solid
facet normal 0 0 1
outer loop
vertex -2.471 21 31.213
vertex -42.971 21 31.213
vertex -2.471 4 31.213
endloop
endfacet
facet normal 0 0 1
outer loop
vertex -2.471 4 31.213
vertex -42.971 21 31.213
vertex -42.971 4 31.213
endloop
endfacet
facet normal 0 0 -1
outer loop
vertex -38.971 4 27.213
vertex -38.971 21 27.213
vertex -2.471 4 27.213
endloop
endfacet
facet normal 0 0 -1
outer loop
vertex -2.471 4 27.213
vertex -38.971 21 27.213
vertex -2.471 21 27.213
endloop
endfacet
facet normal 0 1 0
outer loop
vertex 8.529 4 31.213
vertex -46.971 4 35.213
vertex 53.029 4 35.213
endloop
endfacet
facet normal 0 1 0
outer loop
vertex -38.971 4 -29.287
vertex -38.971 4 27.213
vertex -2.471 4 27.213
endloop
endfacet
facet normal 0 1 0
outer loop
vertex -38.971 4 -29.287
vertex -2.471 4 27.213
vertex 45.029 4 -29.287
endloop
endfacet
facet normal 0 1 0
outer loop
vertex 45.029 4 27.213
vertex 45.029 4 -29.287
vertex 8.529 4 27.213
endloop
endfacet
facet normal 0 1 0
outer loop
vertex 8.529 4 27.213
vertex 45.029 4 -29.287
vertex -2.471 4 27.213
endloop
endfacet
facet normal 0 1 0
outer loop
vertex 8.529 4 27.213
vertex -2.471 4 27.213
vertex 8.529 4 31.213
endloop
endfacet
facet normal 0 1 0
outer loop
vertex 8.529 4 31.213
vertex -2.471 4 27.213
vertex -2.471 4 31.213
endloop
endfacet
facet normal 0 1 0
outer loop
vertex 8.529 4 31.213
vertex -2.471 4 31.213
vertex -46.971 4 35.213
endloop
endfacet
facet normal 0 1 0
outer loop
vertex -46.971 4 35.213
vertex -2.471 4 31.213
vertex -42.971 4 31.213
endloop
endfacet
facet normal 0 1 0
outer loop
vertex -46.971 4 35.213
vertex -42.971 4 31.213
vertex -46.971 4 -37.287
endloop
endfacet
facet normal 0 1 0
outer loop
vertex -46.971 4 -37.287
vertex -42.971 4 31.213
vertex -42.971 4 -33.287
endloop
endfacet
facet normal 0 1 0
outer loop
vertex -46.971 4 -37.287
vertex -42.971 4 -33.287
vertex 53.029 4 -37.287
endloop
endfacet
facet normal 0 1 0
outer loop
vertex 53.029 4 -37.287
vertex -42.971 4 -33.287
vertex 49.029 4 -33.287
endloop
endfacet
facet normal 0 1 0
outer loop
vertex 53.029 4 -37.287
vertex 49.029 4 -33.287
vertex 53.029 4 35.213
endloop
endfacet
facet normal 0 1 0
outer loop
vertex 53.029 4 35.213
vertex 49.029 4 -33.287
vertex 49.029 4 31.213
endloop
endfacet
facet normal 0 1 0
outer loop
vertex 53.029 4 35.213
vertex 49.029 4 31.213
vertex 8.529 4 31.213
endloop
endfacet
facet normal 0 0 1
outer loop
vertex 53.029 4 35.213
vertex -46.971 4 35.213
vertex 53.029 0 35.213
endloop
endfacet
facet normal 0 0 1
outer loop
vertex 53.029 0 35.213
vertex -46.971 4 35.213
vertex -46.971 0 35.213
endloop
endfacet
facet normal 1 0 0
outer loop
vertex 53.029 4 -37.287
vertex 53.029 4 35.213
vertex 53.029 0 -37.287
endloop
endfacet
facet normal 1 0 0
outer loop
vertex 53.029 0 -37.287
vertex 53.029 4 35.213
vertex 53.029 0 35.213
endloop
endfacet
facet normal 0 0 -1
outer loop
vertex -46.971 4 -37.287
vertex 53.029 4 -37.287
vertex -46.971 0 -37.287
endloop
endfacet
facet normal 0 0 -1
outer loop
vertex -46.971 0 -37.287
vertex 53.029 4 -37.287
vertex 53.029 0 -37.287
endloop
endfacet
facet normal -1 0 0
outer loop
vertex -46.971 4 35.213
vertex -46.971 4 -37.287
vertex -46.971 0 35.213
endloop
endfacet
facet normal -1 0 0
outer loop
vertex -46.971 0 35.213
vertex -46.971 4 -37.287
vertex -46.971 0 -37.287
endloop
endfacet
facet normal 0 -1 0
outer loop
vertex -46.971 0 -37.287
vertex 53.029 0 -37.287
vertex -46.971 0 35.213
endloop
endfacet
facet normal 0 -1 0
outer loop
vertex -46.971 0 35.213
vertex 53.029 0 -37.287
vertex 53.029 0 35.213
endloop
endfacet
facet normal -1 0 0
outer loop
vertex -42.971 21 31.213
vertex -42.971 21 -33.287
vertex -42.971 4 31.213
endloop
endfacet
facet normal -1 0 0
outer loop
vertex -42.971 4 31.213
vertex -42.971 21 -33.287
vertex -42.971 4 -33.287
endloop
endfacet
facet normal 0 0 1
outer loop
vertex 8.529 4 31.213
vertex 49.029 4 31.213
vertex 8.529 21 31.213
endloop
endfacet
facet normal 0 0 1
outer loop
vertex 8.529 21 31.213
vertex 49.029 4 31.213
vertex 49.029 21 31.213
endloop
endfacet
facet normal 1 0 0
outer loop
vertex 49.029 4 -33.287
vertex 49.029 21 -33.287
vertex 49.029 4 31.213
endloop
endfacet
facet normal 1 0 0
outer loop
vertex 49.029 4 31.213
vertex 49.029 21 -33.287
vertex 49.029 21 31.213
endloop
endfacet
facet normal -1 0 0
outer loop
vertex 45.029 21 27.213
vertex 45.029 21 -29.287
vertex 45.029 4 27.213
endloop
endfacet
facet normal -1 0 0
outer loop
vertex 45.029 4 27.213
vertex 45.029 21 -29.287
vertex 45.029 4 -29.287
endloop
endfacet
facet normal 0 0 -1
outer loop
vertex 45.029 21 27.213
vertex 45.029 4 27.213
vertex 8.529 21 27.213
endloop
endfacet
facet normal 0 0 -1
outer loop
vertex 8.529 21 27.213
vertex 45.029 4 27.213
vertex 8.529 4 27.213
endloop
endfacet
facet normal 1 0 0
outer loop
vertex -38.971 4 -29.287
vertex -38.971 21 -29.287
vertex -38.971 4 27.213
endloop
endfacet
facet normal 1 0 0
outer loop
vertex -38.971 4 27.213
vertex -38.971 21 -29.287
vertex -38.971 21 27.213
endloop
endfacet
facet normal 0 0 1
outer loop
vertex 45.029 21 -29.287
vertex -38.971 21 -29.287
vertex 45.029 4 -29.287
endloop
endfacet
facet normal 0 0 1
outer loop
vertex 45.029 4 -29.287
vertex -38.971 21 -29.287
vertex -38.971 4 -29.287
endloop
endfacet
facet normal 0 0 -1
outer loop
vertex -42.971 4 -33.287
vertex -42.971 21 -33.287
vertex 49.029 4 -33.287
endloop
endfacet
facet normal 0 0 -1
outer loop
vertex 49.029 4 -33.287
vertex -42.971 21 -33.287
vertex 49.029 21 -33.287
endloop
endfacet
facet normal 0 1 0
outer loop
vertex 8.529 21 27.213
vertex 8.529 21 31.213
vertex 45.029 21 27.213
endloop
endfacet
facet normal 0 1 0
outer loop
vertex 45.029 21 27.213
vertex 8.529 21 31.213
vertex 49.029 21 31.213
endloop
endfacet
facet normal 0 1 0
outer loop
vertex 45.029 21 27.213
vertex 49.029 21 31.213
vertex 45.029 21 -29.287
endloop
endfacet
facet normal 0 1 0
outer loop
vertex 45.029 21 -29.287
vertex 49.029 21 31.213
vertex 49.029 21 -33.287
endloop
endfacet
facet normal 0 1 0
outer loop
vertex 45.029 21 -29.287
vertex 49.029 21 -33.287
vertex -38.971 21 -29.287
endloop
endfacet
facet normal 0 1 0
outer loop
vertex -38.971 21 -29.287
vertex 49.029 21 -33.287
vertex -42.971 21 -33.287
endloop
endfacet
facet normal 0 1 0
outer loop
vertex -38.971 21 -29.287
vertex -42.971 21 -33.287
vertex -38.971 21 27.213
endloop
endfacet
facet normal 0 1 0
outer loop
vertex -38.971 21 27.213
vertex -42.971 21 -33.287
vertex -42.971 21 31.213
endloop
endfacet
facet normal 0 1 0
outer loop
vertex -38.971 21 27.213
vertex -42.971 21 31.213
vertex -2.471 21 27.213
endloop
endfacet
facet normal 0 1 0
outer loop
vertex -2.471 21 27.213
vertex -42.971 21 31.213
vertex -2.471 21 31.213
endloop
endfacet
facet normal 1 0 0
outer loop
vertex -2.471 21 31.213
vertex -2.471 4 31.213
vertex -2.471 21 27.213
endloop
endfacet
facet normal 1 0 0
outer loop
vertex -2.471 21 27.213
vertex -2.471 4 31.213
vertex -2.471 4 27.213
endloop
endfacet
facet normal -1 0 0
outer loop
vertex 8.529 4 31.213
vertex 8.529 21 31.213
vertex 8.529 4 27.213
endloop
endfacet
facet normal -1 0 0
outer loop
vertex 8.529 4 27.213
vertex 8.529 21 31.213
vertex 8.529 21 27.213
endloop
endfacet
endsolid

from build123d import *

# Parameters (mm, degrees)
SKETCH2_W           = 100
SKETCH2_H           = 72.5
BOSS_EXTRUDE1_DEPTH = 4
SKETCH2_3_W         = 92
SKETCH2_3_H         = 64.5
SKETCH2_3_W_2       = 84
SKETCH2_3_H_2       = 56.5
BOSS_EXTRUDE2_DEPTH = 21
SKETCH3_W           = 11
SKETCH3_H           = 17
CUT_EXTRUDE1_DEPTH  = 10


with BuildPart() as part:
    # Sketch2 → Boss-Extrude1 (new body)
    with BuildSketch(Plane(origin=(0, 0, 0), x_dir=(1, 0, 0), z_dir=(0, 1, 0))):
        with Locations((3.029157667, 1.037257019)):
            Rectangle(SKETCH2_W, SKETCH2_H)
    extrude(amount=BOSS_EXTRUDE1_DEPTH)

    # Sketch2<3> → Boss-Extrude2 (add)
    with BuildSketch(Plane(origin=(0, 0, 0), x_dir=(1, 0, 0), z_dir=(0, 1, 0))):
        with Locations((3.029157667, 1.037257019)):
            Rectangle(SKETCH2_3_W, SKETCH2_3_H)
        with Locations((3.029157667, 1.037257019)):
            Rectangle(SKETCH2_3_W_2, SKETCH2_3_H_2, mode=Mode.SUBTRACT)
    extrude(amount=BOSS_EXTRUDE2_DEPTH)

    # Sketch3 → Cut-Extrude1 (cut)
    with BuildSketch(Plane.XY.offset(31.212742981)):
        with Locations((3.029157667, 12.5)):
            Rectangle(SKETCH3_W, SKETCH3_H)
    extrude(amount=-CUT_EXTRUDE1_DEPTH, mode=Mode.SUBTRACT)


solid = part.part
